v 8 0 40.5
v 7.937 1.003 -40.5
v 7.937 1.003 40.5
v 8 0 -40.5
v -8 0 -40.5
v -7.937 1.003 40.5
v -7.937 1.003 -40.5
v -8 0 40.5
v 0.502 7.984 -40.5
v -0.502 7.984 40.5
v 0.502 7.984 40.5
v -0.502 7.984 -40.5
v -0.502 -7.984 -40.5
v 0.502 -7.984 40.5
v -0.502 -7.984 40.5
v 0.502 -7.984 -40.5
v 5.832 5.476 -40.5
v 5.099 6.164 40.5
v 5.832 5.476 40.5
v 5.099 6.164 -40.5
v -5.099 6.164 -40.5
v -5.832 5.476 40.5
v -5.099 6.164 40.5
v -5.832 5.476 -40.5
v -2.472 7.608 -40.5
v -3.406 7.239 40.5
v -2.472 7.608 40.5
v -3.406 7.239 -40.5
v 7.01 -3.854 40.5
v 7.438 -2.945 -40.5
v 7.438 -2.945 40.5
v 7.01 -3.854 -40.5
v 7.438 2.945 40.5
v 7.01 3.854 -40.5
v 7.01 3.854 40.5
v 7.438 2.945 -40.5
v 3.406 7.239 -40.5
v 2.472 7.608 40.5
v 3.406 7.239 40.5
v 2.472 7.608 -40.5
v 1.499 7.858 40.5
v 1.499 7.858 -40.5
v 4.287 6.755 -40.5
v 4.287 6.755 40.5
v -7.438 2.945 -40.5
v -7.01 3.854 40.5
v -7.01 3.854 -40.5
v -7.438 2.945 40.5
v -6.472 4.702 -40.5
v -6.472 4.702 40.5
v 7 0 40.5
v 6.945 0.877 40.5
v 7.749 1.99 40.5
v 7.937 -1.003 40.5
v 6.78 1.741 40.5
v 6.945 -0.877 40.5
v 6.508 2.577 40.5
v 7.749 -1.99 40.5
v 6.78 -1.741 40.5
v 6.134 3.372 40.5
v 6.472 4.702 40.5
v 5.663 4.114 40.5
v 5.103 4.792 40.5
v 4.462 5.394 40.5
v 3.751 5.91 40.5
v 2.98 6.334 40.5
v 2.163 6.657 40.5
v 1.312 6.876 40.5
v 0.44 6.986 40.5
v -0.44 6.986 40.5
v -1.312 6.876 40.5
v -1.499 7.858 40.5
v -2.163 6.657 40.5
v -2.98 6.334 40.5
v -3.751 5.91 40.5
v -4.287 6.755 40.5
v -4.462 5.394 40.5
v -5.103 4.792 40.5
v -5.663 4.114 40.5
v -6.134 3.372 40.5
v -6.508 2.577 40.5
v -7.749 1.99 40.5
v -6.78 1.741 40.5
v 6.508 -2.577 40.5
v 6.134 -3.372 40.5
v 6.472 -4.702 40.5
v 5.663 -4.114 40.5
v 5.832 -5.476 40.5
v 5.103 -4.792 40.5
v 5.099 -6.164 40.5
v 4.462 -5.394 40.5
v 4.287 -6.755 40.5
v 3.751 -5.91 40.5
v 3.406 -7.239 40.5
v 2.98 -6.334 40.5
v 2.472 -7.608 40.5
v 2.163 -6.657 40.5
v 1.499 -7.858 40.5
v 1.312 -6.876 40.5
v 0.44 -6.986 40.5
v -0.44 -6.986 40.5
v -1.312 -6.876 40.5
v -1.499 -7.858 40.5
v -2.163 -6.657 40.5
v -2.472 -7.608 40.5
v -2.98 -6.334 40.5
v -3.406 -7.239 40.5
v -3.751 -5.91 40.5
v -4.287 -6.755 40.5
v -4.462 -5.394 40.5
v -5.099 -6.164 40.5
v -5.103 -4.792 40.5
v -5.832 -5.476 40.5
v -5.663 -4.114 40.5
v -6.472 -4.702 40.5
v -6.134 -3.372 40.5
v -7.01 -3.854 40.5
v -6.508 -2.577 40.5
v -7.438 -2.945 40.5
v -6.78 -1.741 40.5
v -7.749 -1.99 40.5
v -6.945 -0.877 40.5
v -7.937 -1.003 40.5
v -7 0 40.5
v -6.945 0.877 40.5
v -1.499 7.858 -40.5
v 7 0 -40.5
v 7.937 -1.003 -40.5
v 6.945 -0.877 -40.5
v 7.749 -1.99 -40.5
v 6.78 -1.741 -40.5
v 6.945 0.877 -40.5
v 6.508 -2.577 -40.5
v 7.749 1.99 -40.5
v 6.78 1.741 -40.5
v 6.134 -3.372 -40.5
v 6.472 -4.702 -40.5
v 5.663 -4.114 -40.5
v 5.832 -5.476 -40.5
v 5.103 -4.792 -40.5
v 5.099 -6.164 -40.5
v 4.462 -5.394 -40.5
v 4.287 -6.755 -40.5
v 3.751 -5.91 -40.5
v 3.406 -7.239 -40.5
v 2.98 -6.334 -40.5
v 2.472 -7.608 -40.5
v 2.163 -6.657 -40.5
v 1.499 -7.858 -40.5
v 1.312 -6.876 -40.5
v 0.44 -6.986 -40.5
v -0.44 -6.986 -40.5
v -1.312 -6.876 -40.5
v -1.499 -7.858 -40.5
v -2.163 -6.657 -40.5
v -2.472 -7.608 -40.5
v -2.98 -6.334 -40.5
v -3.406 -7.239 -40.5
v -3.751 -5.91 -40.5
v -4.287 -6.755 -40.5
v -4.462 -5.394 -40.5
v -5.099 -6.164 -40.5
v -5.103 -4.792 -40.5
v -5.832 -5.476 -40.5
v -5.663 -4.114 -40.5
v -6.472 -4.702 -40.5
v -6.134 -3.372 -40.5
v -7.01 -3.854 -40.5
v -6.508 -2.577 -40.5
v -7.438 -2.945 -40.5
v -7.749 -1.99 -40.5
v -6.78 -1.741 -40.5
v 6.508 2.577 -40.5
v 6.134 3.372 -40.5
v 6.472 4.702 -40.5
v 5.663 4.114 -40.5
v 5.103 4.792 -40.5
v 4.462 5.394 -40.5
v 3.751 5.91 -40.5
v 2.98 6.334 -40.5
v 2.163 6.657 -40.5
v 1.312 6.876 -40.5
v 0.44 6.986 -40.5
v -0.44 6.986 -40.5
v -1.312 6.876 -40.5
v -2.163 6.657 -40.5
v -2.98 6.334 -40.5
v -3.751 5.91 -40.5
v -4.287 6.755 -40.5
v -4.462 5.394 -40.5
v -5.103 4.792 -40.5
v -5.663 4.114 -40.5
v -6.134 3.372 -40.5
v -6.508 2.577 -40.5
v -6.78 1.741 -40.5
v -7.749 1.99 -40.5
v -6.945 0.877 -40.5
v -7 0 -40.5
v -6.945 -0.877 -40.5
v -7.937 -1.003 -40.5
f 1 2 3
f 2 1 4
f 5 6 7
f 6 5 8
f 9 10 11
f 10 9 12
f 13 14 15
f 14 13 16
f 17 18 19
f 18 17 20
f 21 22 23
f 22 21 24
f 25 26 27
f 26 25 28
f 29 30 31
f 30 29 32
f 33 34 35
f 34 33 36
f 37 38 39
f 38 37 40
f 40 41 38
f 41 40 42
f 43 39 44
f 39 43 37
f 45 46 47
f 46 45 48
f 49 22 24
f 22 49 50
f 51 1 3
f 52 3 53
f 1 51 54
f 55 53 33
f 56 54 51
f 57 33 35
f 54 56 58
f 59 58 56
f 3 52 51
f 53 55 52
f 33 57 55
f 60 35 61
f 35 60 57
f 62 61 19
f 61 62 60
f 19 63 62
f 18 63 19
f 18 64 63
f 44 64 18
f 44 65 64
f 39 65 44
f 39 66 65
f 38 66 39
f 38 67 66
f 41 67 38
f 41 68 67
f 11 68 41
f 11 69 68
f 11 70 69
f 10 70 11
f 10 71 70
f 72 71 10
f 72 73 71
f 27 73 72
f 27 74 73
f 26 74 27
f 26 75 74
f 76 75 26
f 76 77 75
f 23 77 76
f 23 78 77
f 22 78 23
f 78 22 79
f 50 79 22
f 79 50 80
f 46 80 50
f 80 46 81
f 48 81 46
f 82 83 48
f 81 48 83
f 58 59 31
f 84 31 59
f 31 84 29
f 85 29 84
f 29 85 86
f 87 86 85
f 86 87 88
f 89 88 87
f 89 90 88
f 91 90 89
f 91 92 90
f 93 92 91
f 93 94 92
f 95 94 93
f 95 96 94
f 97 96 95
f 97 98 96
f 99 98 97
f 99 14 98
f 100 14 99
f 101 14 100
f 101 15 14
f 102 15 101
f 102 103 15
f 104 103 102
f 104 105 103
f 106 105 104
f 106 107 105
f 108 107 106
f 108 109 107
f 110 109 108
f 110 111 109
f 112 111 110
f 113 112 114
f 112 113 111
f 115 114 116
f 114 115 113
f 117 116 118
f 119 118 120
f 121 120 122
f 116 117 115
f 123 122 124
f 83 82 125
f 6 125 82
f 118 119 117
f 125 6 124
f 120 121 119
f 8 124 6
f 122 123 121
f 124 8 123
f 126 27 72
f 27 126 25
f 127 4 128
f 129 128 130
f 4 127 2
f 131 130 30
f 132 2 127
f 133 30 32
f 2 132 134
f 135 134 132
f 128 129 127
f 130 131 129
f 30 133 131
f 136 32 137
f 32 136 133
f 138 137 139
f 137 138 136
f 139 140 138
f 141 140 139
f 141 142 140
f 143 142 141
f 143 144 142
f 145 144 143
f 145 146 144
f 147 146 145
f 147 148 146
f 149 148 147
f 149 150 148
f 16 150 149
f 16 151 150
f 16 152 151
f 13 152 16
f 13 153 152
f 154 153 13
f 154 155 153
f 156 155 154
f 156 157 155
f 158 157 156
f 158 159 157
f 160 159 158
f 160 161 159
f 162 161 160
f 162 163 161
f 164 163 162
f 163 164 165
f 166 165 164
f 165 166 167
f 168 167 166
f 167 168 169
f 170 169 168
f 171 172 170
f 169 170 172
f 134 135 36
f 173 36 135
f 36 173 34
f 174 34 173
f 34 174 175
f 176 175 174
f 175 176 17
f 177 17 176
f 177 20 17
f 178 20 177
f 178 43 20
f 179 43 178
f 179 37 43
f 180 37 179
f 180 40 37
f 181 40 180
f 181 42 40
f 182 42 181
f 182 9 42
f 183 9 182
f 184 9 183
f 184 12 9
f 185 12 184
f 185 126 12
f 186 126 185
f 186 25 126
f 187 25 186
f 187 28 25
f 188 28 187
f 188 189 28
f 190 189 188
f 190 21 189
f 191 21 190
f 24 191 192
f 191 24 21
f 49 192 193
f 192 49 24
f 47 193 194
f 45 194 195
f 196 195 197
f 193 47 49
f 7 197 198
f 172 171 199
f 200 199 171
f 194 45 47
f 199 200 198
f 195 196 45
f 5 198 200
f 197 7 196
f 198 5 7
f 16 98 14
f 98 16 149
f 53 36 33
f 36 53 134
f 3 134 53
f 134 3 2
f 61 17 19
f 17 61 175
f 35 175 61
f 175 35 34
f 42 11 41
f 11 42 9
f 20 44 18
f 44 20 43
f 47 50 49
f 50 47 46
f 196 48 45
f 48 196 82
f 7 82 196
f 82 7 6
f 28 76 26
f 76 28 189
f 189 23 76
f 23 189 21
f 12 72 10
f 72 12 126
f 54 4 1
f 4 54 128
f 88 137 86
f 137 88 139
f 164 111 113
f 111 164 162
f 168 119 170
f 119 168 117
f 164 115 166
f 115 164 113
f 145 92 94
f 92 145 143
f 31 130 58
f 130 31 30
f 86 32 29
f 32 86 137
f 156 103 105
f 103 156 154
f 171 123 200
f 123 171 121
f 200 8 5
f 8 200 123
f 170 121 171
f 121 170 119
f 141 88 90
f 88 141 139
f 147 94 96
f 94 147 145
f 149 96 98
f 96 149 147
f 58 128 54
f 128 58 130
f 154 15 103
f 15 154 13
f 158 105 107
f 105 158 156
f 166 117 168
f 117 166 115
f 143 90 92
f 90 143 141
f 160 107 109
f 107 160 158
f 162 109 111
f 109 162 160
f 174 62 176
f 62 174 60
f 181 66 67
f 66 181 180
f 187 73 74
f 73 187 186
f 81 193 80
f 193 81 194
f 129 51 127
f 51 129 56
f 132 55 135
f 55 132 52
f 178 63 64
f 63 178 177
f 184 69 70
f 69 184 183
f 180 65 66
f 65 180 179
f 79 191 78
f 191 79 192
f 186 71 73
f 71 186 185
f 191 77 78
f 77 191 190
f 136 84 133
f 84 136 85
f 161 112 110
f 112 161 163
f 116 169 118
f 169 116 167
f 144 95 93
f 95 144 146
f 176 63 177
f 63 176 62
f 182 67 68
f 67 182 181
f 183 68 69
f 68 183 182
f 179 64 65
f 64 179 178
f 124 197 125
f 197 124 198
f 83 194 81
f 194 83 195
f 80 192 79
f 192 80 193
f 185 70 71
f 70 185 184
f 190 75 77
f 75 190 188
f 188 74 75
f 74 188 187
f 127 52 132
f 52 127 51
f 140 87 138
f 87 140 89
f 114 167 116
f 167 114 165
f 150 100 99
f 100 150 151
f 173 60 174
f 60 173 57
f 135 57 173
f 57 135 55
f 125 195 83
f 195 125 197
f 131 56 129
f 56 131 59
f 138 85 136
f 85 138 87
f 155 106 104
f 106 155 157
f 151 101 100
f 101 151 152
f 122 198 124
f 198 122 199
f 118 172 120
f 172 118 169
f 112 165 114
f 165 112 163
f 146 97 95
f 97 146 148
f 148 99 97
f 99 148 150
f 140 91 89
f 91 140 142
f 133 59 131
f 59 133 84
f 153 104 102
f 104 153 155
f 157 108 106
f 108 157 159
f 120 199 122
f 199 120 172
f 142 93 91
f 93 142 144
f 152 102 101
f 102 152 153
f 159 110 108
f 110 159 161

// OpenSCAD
$fn = 50;


difference() {
	union() {
		translate(v = [0, 0, -40.5000000000]) {
			cylinder(h = 81, r = 8.0000000000);
		}
	}
	union() {
		translate(v = [0, 0, -100.0000000000]) {
			cylinder(h = 200, r = 7);
		}
	}
}
